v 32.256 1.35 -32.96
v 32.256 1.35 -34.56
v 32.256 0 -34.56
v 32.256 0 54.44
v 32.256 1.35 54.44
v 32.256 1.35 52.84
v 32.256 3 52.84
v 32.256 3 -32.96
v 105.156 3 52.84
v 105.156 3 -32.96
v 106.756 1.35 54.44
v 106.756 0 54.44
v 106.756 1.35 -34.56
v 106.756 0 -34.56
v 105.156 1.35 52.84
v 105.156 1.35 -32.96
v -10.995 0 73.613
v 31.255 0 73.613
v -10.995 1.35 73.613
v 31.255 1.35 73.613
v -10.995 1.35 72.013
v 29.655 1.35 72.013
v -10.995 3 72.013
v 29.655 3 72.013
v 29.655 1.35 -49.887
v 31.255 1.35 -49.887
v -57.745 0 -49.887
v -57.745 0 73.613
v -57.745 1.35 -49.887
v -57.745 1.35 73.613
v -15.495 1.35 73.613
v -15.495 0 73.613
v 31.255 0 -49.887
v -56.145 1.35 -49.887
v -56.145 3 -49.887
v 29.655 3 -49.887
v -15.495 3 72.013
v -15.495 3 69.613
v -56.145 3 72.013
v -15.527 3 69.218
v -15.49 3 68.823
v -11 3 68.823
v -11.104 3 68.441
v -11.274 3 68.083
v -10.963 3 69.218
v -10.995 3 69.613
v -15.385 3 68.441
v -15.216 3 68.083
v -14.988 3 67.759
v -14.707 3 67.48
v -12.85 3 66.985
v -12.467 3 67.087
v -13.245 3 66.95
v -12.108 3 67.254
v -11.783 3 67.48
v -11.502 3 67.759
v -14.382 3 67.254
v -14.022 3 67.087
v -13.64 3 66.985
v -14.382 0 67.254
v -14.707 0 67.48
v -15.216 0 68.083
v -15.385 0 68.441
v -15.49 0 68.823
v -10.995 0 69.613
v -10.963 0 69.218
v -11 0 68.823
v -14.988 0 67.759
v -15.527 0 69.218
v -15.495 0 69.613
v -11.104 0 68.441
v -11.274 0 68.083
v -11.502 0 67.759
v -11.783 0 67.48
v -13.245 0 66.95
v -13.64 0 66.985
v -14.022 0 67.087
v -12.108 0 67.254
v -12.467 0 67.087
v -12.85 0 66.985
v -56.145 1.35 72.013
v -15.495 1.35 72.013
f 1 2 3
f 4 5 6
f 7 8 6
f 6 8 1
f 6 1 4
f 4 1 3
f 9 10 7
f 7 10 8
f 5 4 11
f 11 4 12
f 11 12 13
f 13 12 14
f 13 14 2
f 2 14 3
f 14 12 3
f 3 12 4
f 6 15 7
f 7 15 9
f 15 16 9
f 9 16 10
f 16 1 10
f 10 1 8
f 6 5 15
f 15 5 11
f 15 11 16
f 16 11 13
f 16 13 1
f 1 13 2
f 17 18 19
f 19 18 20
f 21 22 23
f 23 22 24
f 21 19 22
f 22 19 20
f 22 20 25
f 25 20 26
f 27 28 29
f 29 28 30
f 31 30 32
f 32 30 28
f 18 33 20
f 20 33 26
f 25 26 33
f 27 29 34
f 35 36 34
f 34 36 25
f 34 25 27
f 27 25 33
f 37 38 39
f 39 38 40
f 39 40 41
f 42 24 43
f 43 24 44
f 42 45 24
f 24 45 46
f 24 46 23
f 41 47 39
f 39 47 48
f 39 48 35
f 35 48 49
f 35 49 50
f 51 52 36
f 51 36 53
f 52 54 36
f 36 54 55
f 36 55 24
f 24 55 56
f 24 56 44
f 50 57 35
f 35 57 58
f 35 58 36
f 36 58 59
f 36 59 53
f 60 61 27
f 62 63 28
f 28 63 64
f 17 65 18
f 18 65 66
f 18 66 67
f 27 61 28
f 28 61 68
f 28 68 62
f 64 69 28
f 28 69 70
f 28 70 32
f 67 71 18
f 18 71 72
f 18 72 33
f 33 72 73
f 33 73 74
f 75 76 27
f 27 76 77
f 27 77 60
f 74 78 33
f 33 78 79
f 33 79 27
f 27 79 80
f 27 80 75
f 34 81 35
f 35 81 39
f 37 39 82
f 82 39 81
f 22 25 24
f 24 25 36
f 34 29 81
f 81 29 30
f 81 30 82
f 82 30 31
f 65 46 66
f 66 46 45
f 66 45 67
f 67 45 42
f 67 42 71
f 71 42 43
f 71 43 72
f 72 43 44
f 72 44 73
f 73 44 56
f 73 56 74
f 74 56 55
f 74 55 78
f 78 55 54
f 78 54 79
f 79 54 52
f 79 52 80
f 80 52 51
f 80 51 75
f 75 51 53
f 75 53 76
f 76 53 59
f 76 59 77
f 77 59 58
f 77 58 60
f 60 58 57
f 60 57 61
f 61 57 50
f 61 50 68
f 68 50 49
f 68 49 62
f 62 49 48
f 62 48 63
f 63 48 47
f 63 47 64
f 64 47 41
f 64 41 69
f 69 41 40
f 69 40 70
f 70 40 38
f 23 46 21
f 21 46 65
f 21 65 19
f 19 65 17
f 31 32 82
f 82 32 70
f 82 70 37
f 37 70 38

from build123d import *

# Parameters (mm, degrees)
CROQUIS1_W                = 89
CROQUIS1_H                = 123.5
SALIENTE_EXTRUIR1_DEPTH   = 3
CROQUIS1_W_2              = 74.5
CROQUIS1_H_2              = 89
SALIENTE_EXTRUIR1_2_DEPTH = 3
CORTAR_EXTRUIR1_DEPTH     = 1.65
CORTAR_EXTRUIR3_DEPTH     = 6


with BuildPart() as part:
    # Croquis1 → Saliente-Extruir1 (new body)
    with BuildSketch(Plane(origin=(0, 0, 0), x_dir=(1, 0, 0), z_dir=(0, 1, 0))):
        with Locations((-13.244966745, -11.862734426)):
            Rectangle(CROQUIS1_W, CROQUIS1_H)
    extrude(amount=SALIENTE_EXTRUIR1_DEPTH)


with BuildPart() as body_2:
    # Croquis1 → Saliente-Extruir1 2 (new body)
    with BuildSketch(Plane(origin=(0, 0, 0), x_dir=(1, 0, 0), z_dir=(0, 1, 0))):
        with Locations((69.505628415, -9.940468384)):
            Rectangle(CROQUIS1_W_2, CROQUIS1_H_2)
    extrude(amount=SALIENTE_EXTRUIR1_2_DEPTH)


with BuildPart() as cortar_extruir1_tool:
    # Croquis2 → Cortar-Extruir1 (new body)
    with BuildSketch(Plane(origin=(0, 3, 0), x_dir=(1, 0, 0), z_dir=(0, 1, 0))):
        Polygon((-57.744966745, 49.887265574), (-57.744966745, -73.612734426), (31.255033255, -73.612734426), (31.255033255, 49.887265574), (29.655033255, 49.887265574), (29.655033255, -72.012734426), (-56.144966745, -72.012734426), (-56.144966745, 49.887265574), align=None)
        Polygon((32.255628415, 34.559531616), (106.755628415, 34.559531616), (106.755628415, -54.440468384), (32.255628415, -54.440468384), (32.255628415, -52.840468384), (105.155628415, -52.840468384), (105.155628415, 32.959531616), (32.255628415, 32.959531616), align=None)
    extrude(amount=-CORTAR_EXTRUIR1_DEPTH)


with BuildPart() as part_1:
    add(part.part)

    # Cortar-Extruir1: cut by cortar_extruir1_tool
    add(cortar_extruir1_tool.part, mode=Mode.SUBTRACT)

    # Croquis3 → Cortar-Extruir3 (cut)
    with BuildSketch(Plane(origin=(0, 3, 0), x_dir=(1, 0, 0), z_dir=(0, 1, 0))):
        with BuildLine():
            Line((-15.494966745, -73.612734426), (-15.494966745, -69.612734426))
            ThreePointArc((-15.494966745, -69.612734426), (-13.244966745, -66.950228859), (-10.994966745, -69.612734426))
            Line((-10.994966745, -69.612734426), (-10.994966745, -73.612734426))
            Line((-10.994966745, -73.612734426), (-15.494966745, -73.612734426))
        make_face()
    extrude(amount=-CORTAR_EXTRUIR3_DEPTH, mode=Mode.SUBTRACT)


with BuildPart() as body_2_1:
    add(body_2.part)

    # Cortar-Extruir1: cut by cortar_extruir1_tool
    add(cortar_extruir1_tool.part, mode=Mode.SUBTRACT)


solid = Compound([part_1.part, body_2_1.part])
